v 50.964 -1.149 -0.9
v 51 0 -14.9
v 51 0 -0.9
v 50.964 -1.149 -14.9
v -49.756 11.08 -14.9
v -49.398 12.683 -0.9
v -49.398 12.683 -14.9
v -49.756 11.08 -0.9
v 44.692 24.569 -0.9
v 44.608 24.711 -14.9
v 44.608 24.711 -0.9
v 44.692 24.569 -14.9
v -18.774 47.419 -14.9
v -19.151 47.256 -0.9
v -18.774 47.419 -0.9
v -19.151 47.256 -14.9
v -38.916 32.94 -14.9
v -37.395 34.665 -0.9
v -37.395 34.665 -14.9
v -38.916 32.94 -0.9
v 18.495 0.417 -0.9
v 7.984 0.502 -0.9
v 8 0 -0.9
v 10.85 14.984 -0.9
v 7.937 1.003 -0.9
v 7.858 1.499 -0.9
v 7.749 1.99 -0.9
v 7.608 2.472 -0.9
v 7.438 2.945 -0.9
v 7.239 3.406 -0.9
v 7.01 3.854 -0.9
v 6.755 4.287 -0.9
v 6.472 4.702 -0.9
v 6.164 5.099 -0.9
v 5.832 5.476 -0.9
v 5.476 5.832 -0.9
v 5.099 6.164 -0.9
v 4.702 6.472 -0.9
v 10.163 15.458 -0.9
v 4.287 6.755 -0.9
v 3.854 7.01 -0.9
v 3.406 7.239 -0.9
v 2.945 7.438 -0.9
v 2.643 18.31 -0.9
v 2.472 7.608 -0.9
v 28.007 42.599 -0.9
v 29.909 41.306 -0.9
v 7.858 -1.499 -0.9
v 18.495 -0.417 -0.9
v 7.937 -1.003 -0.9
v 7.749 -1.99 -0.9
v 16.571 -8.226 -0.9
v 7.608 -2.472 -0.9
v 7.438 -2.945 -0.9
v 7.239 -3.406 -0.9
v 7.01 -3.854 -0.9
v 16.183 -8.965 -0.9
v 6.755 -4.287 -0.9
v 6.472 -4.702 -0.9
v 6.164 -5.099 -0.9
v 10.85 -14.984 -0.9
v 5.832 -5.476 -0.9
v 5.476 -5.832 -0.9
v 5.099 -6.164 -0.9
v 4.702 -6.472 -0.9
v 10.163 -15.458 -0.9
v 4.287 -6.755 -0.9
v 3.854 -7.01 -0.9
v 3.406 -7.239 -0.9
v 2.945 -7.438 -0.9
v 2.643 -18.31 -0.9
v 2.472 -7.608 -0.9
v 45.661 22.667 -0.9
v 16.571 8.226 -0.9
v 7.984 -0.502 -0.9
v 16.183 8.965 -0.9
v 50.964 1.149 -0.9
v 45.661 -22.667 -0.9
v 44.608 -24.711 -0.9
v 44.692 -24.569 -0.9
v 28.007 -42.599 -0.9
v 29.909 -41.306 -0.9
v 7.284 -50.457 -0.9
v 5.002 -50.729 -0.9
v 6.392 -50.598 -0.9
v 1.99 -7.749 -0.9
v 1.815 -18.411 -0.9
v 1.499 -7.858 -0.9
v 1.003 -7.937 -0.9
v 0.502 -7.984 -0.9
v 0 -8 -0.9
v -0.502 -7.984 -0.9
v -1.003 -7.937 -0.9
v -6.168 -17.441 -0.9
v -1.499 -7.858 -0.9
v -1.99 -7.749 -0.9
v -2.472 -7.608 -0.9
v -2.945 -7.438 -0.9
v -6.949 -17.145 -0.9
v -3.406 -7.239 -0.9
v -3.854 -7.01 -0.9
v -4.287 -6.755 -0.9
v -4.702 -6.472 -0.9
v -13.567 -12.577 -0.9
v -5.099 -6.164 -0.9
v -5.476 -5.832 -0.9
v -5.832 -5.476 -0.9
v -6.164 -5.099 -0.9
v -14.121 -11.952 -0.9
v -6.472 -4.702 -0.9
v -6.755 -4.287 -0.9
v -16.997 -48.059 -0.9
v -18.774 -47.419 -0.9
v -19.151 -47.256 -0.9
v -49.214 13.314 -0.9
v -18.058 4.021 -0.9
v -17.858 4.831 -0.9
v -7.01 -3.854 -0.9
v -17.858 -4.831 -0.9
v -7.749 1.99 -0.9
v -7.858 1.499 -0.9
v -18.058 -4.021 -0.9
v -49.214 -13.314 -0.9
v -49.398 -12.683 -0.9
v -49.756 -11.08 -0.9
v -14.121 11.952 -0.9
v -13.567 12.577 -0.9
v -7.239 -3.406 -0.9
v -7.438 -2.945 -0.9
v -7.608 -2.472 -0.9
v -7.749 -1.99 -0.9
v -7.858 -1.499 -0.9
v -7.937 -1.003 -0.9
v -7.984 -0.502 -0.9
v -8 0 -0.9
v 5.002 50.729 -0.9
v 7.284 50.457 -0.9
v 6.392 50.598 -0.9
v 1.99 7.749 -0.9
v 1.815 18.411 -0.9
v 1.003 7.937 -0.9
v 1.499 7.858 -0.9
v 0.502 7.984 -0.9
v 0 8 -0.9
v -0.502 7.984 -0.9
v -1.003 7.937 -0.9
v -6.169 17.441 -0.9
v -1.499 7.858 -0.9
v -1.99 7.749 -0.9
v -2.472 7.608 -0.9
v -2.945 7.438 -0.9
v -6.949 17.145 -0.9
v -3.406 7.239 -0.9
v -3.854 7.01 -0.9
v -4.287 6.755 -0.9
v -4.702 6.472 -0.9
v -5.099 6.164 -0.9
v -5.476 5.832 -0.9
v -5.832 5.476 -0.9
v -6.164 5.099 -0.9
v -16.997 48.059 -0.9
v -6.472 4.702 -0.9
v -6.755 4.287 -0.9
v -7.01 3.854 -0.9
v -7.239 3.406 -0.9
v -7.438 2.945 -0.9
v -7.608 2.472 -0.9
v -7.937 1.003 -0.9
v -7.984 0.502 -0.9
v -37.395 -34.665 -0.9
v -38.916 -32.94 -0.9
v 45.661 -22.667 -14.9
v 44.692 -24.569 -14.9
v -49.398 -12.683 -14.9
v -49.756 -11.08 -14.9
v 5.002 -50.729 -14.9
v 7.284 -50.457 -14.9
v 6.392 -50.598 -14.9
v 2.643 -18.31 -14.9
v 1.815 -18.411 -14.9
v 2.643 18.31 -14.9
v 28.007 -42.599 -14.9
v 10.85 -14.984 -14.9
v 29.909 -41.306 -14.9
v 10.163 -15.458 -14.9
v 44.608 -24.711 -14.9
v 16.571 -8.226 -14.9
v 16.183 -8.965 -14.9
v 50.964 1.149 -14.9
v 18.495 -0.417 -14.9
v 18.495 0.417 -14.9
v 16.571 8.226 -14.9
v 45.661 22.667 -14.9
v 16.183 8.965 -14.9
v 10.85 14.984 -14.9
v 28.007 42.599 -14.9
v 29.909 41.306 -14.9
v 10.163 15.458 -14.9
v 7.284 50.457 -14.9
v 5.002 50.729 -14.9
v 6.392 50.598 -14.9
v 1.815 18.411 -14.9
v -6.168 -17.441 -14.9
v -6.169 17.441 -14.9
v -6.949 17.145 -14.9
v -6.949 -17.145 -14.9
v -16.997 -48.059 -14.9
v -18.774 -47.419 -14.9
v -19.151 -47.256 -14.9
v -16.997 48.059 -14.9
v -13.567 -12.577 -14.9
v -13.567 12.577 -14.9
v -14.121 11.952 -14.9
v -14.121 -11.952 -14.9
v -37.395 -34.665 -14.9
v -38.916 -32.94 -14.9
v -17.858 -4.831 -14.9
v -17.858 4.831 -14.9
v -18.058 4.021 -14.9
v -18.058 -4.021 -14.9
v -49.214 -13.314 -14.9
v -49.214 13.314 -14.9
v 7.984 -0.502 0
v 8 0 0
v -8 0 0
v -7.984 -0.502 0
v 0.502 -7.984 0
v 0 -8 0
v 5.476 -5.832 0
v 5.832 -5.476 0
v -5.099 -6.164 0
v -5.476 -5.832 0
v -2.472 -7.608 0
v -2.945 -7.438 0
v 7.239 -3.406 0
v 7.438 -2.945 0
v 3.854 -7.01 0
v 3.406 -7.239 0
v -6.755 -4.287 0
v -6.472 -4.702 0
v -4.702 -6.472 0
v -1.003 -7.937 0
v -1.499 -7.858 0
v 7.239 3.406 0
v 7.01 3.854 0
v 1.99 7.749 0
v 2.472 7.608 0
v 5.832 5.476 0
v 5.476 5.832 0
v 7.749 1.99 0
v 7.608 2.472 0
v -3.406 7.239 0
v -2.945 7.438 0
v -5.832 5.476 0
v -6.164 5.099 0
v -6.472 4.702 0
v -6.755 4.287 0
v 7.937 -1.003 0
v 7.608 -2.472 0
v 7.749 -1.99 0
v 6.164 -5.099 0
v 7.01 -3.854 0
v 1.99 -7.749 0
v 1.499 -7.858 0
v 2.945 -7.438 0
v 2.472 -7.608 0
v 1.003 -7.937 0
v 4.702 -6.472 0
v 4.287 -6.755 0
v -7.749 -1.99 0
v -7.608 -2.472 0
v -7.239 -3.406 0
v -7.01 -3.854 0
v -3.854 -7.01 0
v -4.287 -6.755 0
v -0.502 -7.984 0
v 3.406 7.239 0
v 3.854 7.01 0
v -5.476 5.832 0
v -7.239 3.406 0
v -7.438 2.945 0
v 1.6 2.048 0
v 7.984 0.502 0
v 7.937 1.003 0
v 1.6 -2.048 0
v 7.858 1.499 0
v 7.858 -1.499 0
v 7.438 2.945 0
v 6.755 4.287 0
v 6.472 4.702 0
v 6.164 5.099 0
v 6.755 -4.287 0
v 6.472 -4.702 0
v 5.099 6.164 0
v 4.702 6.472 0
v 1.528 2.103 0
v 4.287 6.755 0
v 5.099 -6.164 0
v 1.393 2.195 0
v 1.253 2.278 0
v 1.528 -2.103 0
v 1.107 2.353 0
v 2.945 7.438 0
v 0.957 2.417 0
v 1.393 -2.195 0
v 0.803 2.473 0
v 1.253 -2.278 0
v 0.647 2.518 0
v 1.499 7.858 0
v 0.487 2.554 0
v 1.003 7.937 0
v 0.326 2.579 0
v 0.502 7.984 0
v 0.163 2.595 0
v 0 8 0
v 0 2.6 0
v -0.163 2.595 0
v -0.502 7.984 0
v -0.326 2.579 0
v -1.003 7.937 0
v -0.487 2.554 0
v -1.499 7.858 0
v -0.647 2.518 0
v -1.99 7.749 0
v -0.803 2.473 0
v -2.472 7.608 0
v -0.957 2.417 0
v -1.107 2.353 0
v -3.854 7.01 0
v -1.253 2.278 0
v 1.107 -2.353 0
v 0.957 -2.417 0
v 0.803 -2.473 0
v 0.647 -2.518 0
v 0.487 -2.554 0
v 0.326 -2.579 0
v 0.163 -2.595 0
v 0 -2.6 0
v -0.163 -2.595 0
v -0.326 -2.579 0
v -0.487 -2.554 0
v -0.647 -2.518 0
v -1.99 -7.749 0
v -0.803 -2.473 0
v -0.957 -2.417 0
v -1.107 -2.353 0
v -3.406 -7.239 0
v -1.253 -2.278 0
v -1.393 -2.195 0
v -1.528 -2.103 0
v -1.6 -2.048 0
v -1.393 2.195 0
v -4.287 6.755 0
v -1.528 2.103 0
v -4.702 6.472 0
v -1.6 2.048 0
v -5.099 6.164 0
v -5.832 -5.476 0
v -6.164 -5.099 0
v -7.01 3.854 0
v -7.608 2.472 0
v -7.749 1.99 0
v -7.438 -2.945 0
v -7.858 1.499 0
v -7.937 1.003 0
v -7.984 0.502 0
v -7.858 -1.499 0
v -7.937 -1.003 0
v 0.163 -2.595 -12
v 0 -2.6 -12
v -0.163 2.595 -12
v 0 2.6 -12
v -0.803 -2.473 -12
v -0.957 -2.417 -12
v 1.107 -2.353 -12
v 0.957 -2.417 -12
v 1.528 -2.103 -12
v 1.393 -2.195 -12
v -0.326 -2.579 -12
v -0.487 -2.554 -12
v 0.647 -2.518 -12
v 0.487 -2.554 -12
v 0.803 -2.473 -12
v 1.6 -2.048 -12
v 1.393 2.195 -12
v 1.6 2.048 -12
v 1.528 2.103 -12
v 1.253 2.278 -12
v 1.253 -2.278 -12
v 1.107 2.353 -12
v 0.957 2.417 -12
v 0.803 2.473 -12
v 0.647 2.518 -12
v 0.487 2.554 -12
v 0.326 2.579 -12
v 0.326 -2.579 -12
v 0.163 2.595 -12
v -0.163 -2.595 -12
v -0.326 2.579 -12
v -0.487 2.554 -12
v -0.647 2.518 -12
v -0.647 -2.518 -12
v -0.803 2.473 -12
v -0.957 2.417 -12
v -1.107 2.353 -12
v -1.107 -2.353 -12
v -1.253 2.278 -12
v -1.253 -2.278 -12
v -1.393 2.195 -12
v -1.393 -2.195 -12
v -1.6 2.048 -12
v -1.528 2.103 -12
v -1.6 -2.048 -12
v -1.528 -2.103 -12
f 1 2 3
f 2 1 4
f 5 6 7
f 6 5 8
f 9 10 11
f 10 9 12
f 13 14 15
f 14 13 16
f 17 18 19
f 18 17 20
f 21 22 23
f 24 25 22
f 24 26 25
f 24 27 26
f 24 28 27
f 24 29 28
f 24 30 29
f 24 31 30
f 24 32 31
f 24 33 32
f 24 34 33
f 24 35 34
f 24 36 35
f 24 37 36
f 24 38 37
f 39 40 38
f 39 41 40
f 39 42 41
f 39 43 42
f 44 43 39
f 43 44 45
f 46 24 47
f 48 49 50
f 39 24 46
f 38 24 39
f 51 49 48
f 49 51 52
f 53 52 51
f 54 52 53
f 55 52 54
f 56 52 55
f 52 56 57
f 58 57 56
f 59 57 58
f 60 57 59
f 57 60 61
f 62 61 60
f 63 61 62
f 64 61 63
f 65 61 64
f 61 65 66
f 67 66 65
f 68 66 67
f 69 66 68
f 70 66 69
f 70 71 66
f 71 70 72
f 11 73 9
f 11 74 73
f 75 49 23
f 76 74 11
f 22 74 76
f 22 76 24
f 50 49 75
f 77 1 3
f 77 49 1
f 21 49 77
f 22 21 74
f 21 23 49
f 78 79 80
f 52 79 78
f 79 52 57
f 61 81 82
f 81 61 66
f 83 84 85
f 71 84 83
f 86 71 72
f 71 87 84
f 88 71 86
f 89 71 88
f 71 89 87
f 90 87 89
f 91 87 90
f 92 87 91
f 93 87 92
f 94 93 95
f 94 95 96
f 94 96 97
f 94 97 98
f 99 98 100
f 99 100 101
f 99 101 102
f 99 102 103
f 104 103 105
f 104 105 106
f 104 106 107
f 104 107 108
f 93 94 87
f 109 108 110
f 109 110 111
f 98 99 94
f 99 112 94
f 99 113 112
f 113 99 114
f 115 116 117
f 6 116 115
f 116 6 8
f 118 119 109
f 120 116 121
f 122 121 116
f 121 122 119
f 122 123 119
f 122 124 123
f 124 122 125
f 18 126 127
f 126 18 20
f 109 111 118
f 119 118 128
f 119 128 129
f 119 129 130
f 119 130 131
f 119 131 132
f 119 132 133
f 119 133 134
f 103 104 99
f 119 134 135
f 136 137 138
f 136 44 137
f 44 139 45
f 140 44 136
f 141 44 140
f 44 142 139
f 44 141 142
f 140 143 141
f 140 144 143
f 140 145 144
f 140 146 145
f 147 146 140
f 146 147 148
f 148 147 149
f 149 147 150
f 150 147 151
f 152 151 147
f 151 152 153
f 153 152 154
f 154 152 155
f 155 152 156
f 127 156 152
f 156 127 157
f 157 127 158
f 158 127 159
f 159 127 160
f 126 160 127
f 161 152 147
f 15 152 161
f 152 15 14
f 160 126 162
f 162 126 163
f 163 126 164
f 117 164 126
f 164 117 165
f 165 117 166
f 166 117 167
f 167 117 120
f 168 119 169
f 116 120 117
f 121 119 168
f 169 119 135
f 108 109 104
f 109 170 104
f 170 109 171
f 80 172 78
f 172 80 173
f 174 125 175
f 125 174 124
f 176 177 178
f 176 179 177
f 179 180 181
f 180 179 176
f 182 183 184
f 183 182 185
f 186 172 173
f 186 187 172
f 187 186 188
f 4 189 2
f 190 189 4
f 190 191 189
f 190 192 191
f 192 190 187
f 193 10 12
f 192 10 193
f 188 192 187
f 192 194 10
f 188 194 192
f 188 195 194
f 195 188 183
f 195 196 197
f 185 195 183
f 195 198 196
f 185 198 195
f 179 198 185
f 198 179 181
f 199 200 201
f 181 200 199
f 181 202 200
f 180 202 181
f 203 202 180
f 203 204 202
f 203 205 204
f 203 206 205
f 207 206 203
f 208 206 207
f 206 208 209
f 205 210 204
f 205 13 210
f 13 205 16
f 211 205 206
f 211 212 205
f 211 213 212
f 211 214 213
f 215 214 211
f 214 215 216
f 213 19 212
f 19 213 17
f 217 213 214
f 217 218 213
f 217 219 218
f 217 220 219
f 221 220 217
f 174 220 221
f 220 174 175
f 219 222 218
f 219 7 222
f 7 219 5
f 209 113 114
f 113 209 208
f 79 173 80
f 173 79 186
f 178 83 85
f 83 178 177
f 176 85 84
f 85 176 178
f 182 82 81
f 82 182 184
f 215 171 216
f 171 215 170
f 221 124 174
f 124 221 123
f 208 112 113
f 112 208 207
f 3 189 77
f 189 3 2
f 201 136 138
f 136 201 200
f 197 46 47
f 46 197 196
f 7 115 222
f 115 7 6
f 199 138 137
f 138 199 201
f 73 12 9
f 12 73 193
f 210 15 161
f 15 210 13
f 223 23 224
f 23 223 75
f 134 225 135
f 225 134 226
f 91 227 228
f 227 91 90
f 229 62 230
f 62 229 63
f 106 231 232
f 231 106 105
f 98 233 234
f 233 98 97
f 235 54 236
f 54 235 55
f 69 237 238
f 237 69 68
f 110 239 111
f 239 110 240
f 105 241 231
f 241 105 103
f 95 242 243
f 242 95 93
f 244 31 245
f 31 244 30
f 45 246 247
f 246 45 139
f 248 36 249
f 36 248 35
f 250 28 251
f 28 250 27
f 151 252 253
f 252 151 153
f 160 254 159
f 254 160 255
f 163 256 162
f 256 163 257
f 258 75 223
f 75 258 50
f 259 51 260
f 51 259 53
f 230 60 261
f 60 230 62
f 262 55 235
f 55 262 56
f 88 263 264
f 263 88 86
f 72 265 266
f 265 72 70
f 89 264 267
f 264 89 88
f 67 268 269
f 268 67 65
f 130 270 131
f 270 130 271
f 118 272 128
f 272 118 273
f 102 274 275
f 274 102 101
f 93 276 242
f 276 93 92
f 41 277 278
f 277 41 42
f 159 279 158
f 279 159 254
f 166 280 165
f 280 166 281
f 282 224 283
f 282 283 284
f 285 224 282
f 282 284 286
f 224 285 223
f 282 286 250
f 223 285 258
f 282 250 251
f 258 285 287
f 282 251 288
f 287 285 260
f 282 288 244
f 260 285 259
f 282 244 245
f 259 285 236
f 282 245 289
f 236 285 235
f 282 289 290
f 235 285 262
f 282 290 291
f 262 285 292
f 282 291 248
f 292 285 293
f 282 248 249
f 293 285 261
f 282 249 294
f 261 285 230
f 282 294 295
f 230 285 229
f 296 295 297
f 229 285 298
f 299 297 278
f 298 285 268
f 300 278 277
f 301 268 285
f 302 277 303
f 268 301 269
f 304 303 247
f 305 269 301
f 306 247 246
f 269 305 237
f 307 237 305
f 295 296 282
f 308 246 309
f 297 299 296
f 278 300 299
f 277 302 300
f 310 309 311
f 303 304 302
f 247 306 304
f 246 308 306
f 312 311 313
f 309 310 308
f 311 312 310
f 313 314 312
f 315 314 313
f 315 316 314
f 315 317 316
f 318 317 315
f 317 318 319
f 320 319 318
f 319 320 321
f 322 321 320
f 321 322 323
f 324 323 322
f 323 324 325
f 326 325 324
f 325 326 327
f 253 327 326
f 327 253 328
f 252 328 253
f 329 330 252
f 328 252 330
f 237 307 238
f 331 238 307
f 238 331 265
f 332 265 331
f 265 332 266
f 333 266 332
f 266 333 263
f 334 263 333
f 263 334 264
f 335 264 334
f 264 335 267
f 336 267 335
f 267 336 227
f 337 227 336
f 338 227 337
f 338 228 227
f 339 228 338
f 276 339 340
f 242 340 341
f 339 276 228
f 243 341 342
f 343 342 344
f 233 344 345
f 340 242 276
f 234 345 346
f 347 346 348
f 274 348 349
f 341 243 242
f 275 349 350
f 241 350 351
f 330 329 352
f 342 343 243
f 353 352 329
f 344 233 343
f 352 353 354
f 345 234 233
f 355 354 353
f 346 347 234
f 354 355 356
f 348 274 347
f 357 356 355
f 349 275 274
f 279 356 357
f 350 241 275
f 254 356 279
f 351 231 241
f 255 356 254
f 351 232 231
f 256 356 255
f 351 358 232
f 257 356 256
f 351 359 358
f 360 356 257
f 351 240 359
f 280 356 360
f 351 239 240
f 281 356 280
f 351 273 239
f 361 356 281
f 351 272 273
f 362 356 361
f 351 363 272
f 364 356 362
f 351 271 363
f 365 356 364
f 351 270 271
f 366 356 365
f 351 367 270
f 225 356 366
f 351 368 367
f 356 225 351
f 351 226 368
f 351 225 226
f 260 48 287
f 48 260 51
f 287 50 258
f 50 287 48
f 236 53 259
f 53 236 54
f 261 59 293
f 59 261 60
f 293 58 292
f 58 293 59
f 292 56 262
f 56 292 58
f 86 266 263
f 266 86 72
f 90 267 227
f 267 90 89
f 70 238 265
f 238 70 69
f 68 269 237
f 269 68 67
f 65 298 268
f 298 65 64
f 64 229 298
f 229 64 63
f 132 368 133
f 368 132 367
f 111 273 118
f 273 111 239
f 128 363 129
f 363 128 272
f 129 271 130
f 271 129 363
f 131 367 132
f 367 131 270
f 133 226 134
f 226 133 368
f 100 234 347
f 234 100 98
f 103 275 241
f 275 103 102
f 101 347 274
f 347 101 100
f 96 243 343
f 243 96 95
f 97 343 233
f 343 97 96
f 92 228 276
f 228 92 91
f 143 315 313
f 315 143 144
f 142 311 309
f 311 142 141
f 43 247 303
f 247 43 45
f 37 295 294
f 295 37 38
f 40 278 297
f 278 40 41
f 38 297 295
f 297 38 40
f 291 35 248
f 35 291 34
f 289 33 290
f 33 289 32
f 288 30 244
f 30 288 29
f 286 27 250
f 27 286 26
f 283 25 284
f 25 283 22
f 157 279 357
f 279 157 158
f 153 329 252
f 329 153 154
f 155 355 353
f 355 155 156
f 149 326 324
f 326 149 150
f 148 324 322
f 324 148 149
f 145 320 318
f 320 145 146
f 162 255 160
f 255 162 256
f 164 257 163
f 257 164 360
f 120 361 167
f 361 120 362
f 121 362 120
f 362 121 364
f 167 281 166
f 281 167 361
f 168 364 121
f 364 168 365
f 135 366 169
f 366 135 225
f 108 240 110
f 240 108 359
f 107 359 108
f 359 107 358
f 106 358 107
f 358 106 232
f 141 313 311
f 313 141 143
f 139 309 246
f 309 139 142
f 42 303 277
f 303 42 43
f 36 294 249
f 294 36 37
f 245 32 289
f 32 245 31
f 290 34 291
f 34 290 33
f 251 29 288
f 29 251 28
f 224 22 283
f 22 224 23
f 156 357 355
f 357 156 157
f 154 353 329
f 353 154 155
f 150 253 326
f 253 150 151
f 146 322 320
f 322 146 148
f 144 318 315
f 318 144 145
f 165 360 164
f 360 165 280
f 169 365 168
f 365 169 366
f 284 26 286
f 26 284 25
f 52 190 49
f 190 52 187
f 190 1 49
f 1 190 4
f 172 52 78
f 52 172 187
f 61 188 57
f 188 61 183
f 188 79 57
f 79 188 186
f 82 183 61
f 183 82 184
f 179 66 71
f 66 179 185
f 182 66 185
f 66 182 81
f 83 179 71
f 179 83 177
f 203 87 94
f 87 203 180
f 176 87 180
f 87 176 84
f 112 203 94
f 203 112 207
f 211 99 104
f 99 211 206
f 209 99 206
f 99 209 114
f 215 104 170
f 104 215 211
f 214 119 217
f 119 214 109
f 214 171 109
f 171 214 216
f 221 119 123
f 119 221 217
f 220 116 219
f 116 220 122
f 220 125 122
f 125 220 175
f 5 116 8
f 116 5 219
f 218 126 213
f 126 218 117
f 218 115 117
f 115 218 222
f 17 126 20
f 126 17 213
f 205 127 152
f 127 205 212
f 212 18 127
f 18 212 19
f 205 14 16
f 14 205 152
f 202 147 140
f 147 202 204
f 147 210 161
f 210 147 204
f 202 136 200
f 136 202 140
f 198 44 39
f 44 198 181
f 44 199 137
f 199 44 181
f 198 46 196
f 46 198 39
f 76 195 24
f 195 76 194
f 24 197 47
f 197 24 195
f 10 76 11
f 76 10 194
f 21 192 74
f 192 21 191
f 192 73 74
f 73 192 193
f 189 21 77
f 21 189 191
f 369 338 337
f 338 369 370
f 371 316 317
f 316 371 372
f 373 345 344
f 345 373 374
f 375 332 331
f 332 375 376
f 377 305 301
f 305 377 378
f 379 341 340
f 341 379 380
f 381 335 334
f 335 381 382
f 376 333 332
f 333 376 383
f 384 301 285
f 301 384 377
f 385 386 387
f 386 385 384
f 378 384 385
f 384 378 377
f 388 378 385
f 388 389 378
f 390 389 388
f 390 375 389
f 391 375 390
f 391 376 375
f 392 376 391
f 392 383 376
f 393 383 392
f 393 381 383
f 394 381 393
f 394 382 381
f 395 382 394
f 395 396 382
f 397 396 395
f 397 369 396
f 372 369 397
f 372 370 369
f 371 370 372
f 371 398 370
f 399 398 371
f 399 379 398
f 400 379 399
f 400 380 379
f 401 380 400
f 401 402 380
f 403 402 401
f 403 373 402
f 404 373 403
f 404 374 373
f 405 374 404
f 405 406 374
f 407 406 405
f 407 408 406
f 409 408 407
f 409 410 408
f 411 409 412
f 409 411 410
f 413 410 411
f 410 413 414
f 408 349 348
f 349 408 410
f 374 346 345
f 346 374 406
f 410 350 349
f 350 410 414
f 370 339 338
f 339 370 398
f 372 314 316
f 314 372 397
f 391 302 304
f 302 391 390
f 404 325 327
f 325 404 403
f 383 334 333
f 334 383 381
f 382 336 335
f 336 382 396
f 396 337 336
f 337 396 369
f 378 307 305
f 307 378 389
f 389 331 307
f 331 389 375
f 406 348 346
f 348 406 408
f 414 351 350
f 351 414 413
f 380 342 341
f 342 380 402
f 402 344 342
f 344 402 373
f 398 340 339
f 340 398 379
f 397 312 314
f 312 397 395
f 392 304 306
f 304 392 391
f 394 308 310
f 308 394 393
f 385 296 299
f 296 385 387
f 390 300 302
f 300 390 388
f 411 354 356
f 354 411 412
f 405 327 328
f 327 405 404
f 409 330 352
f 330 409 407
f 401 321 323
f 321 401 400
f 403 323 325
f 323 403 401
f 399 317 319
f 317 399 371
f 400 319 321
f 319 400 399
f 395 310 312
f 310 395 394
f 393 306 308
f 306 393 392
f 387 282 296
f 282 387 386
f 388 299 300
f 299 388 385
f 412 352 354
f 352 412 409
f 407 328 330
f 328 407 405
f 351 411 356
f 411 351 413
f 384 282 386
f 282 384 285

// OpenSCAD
// Medify - Floor 2: The Windmill
// Updated: outer windmill lifted to reduce scraping + one-sided motor shaft socket

$fn = 100;

// --- Engineering parameters ---
outer_dia = 102;
height = 14;
wall_thickness = 2.3;
compartments = 13;
center_core_r = 16;

// Lift only the rotating outer structure so it does not scrape Floor 2
windmill_lift = 0.9;       // Try 0.5–1.0mm. Start with 0.7mm.

// Small lower boss remains at Z=0 for motor shaft connection
shaft_boss_r = 8.0;
shaft_top_cap = 2.0;       // closes the shaft hole on the top side

angle_per_comp = 360 / compartments;
wall_angle = (wall_thickness * 360) / (PI * outer_dia);
cutout_angle = angle_per_comp - wall_angle;

module double_d_shaft_hole(hole_h) {
    intersection() {
        cylinder(h = hole_h, d = 5.2);
        translate([0, 0, hole_h/2])
            cube([3.2, 10, hole_h], center = true);
    }
}

rotate([180, 0, 0])
difference() {
    union() {
        // 1. Small central lower boss stays at original height/location.
        //    This keeps the motor shaft connection at the same Z position.
        cylinder(h = height, r = shaft_boss_r);

        // 2. Main windmill body is lifted slightly to avoid scraping the floor.
        translate([0, 0, windmill_lift]) {
            cylinder(h = height, d = outer_dia);
            cylinder(h = height, r = center_core_r + 2.5);
        }
    }

    // 3. Cut the 13 compartments only through the lifted main body.
    for (i = [0 : compartments - 1]) {
        rotate([0, 0, i * angle_per_comp + wall_angle/2])
        intersection() {
            translate([0, 0, windmill_lift - 1])
                cylinder(h = height + 2, r = outer_dia/2 + 2);

            translate([0, 0, windmill_lift - 1])
                linear_extrude(height = height + 2)
                    polygon(points = [
                        [center_core_r + 2.5, 0],
                        [outer_dia + 2, 0],
                        [outer_dia * 2 * cos(cutout_angle), outer_dia * 2 * sin(cutout_angle)],
                        [(center_core_r + 2.5) * cos(cutout_angle), (center_core_r + 2.5) * sin(cutout_angle)]
                    ]);
        }
    }

    // 4. One-sided Double-D motor shaft hole.
    //    Open from the bottom, closed at the top by shaft_top_cap.
    translate([0, 0, -1])
        double_d_shaft_hole(height - shaft_top_cap + 1);
}
